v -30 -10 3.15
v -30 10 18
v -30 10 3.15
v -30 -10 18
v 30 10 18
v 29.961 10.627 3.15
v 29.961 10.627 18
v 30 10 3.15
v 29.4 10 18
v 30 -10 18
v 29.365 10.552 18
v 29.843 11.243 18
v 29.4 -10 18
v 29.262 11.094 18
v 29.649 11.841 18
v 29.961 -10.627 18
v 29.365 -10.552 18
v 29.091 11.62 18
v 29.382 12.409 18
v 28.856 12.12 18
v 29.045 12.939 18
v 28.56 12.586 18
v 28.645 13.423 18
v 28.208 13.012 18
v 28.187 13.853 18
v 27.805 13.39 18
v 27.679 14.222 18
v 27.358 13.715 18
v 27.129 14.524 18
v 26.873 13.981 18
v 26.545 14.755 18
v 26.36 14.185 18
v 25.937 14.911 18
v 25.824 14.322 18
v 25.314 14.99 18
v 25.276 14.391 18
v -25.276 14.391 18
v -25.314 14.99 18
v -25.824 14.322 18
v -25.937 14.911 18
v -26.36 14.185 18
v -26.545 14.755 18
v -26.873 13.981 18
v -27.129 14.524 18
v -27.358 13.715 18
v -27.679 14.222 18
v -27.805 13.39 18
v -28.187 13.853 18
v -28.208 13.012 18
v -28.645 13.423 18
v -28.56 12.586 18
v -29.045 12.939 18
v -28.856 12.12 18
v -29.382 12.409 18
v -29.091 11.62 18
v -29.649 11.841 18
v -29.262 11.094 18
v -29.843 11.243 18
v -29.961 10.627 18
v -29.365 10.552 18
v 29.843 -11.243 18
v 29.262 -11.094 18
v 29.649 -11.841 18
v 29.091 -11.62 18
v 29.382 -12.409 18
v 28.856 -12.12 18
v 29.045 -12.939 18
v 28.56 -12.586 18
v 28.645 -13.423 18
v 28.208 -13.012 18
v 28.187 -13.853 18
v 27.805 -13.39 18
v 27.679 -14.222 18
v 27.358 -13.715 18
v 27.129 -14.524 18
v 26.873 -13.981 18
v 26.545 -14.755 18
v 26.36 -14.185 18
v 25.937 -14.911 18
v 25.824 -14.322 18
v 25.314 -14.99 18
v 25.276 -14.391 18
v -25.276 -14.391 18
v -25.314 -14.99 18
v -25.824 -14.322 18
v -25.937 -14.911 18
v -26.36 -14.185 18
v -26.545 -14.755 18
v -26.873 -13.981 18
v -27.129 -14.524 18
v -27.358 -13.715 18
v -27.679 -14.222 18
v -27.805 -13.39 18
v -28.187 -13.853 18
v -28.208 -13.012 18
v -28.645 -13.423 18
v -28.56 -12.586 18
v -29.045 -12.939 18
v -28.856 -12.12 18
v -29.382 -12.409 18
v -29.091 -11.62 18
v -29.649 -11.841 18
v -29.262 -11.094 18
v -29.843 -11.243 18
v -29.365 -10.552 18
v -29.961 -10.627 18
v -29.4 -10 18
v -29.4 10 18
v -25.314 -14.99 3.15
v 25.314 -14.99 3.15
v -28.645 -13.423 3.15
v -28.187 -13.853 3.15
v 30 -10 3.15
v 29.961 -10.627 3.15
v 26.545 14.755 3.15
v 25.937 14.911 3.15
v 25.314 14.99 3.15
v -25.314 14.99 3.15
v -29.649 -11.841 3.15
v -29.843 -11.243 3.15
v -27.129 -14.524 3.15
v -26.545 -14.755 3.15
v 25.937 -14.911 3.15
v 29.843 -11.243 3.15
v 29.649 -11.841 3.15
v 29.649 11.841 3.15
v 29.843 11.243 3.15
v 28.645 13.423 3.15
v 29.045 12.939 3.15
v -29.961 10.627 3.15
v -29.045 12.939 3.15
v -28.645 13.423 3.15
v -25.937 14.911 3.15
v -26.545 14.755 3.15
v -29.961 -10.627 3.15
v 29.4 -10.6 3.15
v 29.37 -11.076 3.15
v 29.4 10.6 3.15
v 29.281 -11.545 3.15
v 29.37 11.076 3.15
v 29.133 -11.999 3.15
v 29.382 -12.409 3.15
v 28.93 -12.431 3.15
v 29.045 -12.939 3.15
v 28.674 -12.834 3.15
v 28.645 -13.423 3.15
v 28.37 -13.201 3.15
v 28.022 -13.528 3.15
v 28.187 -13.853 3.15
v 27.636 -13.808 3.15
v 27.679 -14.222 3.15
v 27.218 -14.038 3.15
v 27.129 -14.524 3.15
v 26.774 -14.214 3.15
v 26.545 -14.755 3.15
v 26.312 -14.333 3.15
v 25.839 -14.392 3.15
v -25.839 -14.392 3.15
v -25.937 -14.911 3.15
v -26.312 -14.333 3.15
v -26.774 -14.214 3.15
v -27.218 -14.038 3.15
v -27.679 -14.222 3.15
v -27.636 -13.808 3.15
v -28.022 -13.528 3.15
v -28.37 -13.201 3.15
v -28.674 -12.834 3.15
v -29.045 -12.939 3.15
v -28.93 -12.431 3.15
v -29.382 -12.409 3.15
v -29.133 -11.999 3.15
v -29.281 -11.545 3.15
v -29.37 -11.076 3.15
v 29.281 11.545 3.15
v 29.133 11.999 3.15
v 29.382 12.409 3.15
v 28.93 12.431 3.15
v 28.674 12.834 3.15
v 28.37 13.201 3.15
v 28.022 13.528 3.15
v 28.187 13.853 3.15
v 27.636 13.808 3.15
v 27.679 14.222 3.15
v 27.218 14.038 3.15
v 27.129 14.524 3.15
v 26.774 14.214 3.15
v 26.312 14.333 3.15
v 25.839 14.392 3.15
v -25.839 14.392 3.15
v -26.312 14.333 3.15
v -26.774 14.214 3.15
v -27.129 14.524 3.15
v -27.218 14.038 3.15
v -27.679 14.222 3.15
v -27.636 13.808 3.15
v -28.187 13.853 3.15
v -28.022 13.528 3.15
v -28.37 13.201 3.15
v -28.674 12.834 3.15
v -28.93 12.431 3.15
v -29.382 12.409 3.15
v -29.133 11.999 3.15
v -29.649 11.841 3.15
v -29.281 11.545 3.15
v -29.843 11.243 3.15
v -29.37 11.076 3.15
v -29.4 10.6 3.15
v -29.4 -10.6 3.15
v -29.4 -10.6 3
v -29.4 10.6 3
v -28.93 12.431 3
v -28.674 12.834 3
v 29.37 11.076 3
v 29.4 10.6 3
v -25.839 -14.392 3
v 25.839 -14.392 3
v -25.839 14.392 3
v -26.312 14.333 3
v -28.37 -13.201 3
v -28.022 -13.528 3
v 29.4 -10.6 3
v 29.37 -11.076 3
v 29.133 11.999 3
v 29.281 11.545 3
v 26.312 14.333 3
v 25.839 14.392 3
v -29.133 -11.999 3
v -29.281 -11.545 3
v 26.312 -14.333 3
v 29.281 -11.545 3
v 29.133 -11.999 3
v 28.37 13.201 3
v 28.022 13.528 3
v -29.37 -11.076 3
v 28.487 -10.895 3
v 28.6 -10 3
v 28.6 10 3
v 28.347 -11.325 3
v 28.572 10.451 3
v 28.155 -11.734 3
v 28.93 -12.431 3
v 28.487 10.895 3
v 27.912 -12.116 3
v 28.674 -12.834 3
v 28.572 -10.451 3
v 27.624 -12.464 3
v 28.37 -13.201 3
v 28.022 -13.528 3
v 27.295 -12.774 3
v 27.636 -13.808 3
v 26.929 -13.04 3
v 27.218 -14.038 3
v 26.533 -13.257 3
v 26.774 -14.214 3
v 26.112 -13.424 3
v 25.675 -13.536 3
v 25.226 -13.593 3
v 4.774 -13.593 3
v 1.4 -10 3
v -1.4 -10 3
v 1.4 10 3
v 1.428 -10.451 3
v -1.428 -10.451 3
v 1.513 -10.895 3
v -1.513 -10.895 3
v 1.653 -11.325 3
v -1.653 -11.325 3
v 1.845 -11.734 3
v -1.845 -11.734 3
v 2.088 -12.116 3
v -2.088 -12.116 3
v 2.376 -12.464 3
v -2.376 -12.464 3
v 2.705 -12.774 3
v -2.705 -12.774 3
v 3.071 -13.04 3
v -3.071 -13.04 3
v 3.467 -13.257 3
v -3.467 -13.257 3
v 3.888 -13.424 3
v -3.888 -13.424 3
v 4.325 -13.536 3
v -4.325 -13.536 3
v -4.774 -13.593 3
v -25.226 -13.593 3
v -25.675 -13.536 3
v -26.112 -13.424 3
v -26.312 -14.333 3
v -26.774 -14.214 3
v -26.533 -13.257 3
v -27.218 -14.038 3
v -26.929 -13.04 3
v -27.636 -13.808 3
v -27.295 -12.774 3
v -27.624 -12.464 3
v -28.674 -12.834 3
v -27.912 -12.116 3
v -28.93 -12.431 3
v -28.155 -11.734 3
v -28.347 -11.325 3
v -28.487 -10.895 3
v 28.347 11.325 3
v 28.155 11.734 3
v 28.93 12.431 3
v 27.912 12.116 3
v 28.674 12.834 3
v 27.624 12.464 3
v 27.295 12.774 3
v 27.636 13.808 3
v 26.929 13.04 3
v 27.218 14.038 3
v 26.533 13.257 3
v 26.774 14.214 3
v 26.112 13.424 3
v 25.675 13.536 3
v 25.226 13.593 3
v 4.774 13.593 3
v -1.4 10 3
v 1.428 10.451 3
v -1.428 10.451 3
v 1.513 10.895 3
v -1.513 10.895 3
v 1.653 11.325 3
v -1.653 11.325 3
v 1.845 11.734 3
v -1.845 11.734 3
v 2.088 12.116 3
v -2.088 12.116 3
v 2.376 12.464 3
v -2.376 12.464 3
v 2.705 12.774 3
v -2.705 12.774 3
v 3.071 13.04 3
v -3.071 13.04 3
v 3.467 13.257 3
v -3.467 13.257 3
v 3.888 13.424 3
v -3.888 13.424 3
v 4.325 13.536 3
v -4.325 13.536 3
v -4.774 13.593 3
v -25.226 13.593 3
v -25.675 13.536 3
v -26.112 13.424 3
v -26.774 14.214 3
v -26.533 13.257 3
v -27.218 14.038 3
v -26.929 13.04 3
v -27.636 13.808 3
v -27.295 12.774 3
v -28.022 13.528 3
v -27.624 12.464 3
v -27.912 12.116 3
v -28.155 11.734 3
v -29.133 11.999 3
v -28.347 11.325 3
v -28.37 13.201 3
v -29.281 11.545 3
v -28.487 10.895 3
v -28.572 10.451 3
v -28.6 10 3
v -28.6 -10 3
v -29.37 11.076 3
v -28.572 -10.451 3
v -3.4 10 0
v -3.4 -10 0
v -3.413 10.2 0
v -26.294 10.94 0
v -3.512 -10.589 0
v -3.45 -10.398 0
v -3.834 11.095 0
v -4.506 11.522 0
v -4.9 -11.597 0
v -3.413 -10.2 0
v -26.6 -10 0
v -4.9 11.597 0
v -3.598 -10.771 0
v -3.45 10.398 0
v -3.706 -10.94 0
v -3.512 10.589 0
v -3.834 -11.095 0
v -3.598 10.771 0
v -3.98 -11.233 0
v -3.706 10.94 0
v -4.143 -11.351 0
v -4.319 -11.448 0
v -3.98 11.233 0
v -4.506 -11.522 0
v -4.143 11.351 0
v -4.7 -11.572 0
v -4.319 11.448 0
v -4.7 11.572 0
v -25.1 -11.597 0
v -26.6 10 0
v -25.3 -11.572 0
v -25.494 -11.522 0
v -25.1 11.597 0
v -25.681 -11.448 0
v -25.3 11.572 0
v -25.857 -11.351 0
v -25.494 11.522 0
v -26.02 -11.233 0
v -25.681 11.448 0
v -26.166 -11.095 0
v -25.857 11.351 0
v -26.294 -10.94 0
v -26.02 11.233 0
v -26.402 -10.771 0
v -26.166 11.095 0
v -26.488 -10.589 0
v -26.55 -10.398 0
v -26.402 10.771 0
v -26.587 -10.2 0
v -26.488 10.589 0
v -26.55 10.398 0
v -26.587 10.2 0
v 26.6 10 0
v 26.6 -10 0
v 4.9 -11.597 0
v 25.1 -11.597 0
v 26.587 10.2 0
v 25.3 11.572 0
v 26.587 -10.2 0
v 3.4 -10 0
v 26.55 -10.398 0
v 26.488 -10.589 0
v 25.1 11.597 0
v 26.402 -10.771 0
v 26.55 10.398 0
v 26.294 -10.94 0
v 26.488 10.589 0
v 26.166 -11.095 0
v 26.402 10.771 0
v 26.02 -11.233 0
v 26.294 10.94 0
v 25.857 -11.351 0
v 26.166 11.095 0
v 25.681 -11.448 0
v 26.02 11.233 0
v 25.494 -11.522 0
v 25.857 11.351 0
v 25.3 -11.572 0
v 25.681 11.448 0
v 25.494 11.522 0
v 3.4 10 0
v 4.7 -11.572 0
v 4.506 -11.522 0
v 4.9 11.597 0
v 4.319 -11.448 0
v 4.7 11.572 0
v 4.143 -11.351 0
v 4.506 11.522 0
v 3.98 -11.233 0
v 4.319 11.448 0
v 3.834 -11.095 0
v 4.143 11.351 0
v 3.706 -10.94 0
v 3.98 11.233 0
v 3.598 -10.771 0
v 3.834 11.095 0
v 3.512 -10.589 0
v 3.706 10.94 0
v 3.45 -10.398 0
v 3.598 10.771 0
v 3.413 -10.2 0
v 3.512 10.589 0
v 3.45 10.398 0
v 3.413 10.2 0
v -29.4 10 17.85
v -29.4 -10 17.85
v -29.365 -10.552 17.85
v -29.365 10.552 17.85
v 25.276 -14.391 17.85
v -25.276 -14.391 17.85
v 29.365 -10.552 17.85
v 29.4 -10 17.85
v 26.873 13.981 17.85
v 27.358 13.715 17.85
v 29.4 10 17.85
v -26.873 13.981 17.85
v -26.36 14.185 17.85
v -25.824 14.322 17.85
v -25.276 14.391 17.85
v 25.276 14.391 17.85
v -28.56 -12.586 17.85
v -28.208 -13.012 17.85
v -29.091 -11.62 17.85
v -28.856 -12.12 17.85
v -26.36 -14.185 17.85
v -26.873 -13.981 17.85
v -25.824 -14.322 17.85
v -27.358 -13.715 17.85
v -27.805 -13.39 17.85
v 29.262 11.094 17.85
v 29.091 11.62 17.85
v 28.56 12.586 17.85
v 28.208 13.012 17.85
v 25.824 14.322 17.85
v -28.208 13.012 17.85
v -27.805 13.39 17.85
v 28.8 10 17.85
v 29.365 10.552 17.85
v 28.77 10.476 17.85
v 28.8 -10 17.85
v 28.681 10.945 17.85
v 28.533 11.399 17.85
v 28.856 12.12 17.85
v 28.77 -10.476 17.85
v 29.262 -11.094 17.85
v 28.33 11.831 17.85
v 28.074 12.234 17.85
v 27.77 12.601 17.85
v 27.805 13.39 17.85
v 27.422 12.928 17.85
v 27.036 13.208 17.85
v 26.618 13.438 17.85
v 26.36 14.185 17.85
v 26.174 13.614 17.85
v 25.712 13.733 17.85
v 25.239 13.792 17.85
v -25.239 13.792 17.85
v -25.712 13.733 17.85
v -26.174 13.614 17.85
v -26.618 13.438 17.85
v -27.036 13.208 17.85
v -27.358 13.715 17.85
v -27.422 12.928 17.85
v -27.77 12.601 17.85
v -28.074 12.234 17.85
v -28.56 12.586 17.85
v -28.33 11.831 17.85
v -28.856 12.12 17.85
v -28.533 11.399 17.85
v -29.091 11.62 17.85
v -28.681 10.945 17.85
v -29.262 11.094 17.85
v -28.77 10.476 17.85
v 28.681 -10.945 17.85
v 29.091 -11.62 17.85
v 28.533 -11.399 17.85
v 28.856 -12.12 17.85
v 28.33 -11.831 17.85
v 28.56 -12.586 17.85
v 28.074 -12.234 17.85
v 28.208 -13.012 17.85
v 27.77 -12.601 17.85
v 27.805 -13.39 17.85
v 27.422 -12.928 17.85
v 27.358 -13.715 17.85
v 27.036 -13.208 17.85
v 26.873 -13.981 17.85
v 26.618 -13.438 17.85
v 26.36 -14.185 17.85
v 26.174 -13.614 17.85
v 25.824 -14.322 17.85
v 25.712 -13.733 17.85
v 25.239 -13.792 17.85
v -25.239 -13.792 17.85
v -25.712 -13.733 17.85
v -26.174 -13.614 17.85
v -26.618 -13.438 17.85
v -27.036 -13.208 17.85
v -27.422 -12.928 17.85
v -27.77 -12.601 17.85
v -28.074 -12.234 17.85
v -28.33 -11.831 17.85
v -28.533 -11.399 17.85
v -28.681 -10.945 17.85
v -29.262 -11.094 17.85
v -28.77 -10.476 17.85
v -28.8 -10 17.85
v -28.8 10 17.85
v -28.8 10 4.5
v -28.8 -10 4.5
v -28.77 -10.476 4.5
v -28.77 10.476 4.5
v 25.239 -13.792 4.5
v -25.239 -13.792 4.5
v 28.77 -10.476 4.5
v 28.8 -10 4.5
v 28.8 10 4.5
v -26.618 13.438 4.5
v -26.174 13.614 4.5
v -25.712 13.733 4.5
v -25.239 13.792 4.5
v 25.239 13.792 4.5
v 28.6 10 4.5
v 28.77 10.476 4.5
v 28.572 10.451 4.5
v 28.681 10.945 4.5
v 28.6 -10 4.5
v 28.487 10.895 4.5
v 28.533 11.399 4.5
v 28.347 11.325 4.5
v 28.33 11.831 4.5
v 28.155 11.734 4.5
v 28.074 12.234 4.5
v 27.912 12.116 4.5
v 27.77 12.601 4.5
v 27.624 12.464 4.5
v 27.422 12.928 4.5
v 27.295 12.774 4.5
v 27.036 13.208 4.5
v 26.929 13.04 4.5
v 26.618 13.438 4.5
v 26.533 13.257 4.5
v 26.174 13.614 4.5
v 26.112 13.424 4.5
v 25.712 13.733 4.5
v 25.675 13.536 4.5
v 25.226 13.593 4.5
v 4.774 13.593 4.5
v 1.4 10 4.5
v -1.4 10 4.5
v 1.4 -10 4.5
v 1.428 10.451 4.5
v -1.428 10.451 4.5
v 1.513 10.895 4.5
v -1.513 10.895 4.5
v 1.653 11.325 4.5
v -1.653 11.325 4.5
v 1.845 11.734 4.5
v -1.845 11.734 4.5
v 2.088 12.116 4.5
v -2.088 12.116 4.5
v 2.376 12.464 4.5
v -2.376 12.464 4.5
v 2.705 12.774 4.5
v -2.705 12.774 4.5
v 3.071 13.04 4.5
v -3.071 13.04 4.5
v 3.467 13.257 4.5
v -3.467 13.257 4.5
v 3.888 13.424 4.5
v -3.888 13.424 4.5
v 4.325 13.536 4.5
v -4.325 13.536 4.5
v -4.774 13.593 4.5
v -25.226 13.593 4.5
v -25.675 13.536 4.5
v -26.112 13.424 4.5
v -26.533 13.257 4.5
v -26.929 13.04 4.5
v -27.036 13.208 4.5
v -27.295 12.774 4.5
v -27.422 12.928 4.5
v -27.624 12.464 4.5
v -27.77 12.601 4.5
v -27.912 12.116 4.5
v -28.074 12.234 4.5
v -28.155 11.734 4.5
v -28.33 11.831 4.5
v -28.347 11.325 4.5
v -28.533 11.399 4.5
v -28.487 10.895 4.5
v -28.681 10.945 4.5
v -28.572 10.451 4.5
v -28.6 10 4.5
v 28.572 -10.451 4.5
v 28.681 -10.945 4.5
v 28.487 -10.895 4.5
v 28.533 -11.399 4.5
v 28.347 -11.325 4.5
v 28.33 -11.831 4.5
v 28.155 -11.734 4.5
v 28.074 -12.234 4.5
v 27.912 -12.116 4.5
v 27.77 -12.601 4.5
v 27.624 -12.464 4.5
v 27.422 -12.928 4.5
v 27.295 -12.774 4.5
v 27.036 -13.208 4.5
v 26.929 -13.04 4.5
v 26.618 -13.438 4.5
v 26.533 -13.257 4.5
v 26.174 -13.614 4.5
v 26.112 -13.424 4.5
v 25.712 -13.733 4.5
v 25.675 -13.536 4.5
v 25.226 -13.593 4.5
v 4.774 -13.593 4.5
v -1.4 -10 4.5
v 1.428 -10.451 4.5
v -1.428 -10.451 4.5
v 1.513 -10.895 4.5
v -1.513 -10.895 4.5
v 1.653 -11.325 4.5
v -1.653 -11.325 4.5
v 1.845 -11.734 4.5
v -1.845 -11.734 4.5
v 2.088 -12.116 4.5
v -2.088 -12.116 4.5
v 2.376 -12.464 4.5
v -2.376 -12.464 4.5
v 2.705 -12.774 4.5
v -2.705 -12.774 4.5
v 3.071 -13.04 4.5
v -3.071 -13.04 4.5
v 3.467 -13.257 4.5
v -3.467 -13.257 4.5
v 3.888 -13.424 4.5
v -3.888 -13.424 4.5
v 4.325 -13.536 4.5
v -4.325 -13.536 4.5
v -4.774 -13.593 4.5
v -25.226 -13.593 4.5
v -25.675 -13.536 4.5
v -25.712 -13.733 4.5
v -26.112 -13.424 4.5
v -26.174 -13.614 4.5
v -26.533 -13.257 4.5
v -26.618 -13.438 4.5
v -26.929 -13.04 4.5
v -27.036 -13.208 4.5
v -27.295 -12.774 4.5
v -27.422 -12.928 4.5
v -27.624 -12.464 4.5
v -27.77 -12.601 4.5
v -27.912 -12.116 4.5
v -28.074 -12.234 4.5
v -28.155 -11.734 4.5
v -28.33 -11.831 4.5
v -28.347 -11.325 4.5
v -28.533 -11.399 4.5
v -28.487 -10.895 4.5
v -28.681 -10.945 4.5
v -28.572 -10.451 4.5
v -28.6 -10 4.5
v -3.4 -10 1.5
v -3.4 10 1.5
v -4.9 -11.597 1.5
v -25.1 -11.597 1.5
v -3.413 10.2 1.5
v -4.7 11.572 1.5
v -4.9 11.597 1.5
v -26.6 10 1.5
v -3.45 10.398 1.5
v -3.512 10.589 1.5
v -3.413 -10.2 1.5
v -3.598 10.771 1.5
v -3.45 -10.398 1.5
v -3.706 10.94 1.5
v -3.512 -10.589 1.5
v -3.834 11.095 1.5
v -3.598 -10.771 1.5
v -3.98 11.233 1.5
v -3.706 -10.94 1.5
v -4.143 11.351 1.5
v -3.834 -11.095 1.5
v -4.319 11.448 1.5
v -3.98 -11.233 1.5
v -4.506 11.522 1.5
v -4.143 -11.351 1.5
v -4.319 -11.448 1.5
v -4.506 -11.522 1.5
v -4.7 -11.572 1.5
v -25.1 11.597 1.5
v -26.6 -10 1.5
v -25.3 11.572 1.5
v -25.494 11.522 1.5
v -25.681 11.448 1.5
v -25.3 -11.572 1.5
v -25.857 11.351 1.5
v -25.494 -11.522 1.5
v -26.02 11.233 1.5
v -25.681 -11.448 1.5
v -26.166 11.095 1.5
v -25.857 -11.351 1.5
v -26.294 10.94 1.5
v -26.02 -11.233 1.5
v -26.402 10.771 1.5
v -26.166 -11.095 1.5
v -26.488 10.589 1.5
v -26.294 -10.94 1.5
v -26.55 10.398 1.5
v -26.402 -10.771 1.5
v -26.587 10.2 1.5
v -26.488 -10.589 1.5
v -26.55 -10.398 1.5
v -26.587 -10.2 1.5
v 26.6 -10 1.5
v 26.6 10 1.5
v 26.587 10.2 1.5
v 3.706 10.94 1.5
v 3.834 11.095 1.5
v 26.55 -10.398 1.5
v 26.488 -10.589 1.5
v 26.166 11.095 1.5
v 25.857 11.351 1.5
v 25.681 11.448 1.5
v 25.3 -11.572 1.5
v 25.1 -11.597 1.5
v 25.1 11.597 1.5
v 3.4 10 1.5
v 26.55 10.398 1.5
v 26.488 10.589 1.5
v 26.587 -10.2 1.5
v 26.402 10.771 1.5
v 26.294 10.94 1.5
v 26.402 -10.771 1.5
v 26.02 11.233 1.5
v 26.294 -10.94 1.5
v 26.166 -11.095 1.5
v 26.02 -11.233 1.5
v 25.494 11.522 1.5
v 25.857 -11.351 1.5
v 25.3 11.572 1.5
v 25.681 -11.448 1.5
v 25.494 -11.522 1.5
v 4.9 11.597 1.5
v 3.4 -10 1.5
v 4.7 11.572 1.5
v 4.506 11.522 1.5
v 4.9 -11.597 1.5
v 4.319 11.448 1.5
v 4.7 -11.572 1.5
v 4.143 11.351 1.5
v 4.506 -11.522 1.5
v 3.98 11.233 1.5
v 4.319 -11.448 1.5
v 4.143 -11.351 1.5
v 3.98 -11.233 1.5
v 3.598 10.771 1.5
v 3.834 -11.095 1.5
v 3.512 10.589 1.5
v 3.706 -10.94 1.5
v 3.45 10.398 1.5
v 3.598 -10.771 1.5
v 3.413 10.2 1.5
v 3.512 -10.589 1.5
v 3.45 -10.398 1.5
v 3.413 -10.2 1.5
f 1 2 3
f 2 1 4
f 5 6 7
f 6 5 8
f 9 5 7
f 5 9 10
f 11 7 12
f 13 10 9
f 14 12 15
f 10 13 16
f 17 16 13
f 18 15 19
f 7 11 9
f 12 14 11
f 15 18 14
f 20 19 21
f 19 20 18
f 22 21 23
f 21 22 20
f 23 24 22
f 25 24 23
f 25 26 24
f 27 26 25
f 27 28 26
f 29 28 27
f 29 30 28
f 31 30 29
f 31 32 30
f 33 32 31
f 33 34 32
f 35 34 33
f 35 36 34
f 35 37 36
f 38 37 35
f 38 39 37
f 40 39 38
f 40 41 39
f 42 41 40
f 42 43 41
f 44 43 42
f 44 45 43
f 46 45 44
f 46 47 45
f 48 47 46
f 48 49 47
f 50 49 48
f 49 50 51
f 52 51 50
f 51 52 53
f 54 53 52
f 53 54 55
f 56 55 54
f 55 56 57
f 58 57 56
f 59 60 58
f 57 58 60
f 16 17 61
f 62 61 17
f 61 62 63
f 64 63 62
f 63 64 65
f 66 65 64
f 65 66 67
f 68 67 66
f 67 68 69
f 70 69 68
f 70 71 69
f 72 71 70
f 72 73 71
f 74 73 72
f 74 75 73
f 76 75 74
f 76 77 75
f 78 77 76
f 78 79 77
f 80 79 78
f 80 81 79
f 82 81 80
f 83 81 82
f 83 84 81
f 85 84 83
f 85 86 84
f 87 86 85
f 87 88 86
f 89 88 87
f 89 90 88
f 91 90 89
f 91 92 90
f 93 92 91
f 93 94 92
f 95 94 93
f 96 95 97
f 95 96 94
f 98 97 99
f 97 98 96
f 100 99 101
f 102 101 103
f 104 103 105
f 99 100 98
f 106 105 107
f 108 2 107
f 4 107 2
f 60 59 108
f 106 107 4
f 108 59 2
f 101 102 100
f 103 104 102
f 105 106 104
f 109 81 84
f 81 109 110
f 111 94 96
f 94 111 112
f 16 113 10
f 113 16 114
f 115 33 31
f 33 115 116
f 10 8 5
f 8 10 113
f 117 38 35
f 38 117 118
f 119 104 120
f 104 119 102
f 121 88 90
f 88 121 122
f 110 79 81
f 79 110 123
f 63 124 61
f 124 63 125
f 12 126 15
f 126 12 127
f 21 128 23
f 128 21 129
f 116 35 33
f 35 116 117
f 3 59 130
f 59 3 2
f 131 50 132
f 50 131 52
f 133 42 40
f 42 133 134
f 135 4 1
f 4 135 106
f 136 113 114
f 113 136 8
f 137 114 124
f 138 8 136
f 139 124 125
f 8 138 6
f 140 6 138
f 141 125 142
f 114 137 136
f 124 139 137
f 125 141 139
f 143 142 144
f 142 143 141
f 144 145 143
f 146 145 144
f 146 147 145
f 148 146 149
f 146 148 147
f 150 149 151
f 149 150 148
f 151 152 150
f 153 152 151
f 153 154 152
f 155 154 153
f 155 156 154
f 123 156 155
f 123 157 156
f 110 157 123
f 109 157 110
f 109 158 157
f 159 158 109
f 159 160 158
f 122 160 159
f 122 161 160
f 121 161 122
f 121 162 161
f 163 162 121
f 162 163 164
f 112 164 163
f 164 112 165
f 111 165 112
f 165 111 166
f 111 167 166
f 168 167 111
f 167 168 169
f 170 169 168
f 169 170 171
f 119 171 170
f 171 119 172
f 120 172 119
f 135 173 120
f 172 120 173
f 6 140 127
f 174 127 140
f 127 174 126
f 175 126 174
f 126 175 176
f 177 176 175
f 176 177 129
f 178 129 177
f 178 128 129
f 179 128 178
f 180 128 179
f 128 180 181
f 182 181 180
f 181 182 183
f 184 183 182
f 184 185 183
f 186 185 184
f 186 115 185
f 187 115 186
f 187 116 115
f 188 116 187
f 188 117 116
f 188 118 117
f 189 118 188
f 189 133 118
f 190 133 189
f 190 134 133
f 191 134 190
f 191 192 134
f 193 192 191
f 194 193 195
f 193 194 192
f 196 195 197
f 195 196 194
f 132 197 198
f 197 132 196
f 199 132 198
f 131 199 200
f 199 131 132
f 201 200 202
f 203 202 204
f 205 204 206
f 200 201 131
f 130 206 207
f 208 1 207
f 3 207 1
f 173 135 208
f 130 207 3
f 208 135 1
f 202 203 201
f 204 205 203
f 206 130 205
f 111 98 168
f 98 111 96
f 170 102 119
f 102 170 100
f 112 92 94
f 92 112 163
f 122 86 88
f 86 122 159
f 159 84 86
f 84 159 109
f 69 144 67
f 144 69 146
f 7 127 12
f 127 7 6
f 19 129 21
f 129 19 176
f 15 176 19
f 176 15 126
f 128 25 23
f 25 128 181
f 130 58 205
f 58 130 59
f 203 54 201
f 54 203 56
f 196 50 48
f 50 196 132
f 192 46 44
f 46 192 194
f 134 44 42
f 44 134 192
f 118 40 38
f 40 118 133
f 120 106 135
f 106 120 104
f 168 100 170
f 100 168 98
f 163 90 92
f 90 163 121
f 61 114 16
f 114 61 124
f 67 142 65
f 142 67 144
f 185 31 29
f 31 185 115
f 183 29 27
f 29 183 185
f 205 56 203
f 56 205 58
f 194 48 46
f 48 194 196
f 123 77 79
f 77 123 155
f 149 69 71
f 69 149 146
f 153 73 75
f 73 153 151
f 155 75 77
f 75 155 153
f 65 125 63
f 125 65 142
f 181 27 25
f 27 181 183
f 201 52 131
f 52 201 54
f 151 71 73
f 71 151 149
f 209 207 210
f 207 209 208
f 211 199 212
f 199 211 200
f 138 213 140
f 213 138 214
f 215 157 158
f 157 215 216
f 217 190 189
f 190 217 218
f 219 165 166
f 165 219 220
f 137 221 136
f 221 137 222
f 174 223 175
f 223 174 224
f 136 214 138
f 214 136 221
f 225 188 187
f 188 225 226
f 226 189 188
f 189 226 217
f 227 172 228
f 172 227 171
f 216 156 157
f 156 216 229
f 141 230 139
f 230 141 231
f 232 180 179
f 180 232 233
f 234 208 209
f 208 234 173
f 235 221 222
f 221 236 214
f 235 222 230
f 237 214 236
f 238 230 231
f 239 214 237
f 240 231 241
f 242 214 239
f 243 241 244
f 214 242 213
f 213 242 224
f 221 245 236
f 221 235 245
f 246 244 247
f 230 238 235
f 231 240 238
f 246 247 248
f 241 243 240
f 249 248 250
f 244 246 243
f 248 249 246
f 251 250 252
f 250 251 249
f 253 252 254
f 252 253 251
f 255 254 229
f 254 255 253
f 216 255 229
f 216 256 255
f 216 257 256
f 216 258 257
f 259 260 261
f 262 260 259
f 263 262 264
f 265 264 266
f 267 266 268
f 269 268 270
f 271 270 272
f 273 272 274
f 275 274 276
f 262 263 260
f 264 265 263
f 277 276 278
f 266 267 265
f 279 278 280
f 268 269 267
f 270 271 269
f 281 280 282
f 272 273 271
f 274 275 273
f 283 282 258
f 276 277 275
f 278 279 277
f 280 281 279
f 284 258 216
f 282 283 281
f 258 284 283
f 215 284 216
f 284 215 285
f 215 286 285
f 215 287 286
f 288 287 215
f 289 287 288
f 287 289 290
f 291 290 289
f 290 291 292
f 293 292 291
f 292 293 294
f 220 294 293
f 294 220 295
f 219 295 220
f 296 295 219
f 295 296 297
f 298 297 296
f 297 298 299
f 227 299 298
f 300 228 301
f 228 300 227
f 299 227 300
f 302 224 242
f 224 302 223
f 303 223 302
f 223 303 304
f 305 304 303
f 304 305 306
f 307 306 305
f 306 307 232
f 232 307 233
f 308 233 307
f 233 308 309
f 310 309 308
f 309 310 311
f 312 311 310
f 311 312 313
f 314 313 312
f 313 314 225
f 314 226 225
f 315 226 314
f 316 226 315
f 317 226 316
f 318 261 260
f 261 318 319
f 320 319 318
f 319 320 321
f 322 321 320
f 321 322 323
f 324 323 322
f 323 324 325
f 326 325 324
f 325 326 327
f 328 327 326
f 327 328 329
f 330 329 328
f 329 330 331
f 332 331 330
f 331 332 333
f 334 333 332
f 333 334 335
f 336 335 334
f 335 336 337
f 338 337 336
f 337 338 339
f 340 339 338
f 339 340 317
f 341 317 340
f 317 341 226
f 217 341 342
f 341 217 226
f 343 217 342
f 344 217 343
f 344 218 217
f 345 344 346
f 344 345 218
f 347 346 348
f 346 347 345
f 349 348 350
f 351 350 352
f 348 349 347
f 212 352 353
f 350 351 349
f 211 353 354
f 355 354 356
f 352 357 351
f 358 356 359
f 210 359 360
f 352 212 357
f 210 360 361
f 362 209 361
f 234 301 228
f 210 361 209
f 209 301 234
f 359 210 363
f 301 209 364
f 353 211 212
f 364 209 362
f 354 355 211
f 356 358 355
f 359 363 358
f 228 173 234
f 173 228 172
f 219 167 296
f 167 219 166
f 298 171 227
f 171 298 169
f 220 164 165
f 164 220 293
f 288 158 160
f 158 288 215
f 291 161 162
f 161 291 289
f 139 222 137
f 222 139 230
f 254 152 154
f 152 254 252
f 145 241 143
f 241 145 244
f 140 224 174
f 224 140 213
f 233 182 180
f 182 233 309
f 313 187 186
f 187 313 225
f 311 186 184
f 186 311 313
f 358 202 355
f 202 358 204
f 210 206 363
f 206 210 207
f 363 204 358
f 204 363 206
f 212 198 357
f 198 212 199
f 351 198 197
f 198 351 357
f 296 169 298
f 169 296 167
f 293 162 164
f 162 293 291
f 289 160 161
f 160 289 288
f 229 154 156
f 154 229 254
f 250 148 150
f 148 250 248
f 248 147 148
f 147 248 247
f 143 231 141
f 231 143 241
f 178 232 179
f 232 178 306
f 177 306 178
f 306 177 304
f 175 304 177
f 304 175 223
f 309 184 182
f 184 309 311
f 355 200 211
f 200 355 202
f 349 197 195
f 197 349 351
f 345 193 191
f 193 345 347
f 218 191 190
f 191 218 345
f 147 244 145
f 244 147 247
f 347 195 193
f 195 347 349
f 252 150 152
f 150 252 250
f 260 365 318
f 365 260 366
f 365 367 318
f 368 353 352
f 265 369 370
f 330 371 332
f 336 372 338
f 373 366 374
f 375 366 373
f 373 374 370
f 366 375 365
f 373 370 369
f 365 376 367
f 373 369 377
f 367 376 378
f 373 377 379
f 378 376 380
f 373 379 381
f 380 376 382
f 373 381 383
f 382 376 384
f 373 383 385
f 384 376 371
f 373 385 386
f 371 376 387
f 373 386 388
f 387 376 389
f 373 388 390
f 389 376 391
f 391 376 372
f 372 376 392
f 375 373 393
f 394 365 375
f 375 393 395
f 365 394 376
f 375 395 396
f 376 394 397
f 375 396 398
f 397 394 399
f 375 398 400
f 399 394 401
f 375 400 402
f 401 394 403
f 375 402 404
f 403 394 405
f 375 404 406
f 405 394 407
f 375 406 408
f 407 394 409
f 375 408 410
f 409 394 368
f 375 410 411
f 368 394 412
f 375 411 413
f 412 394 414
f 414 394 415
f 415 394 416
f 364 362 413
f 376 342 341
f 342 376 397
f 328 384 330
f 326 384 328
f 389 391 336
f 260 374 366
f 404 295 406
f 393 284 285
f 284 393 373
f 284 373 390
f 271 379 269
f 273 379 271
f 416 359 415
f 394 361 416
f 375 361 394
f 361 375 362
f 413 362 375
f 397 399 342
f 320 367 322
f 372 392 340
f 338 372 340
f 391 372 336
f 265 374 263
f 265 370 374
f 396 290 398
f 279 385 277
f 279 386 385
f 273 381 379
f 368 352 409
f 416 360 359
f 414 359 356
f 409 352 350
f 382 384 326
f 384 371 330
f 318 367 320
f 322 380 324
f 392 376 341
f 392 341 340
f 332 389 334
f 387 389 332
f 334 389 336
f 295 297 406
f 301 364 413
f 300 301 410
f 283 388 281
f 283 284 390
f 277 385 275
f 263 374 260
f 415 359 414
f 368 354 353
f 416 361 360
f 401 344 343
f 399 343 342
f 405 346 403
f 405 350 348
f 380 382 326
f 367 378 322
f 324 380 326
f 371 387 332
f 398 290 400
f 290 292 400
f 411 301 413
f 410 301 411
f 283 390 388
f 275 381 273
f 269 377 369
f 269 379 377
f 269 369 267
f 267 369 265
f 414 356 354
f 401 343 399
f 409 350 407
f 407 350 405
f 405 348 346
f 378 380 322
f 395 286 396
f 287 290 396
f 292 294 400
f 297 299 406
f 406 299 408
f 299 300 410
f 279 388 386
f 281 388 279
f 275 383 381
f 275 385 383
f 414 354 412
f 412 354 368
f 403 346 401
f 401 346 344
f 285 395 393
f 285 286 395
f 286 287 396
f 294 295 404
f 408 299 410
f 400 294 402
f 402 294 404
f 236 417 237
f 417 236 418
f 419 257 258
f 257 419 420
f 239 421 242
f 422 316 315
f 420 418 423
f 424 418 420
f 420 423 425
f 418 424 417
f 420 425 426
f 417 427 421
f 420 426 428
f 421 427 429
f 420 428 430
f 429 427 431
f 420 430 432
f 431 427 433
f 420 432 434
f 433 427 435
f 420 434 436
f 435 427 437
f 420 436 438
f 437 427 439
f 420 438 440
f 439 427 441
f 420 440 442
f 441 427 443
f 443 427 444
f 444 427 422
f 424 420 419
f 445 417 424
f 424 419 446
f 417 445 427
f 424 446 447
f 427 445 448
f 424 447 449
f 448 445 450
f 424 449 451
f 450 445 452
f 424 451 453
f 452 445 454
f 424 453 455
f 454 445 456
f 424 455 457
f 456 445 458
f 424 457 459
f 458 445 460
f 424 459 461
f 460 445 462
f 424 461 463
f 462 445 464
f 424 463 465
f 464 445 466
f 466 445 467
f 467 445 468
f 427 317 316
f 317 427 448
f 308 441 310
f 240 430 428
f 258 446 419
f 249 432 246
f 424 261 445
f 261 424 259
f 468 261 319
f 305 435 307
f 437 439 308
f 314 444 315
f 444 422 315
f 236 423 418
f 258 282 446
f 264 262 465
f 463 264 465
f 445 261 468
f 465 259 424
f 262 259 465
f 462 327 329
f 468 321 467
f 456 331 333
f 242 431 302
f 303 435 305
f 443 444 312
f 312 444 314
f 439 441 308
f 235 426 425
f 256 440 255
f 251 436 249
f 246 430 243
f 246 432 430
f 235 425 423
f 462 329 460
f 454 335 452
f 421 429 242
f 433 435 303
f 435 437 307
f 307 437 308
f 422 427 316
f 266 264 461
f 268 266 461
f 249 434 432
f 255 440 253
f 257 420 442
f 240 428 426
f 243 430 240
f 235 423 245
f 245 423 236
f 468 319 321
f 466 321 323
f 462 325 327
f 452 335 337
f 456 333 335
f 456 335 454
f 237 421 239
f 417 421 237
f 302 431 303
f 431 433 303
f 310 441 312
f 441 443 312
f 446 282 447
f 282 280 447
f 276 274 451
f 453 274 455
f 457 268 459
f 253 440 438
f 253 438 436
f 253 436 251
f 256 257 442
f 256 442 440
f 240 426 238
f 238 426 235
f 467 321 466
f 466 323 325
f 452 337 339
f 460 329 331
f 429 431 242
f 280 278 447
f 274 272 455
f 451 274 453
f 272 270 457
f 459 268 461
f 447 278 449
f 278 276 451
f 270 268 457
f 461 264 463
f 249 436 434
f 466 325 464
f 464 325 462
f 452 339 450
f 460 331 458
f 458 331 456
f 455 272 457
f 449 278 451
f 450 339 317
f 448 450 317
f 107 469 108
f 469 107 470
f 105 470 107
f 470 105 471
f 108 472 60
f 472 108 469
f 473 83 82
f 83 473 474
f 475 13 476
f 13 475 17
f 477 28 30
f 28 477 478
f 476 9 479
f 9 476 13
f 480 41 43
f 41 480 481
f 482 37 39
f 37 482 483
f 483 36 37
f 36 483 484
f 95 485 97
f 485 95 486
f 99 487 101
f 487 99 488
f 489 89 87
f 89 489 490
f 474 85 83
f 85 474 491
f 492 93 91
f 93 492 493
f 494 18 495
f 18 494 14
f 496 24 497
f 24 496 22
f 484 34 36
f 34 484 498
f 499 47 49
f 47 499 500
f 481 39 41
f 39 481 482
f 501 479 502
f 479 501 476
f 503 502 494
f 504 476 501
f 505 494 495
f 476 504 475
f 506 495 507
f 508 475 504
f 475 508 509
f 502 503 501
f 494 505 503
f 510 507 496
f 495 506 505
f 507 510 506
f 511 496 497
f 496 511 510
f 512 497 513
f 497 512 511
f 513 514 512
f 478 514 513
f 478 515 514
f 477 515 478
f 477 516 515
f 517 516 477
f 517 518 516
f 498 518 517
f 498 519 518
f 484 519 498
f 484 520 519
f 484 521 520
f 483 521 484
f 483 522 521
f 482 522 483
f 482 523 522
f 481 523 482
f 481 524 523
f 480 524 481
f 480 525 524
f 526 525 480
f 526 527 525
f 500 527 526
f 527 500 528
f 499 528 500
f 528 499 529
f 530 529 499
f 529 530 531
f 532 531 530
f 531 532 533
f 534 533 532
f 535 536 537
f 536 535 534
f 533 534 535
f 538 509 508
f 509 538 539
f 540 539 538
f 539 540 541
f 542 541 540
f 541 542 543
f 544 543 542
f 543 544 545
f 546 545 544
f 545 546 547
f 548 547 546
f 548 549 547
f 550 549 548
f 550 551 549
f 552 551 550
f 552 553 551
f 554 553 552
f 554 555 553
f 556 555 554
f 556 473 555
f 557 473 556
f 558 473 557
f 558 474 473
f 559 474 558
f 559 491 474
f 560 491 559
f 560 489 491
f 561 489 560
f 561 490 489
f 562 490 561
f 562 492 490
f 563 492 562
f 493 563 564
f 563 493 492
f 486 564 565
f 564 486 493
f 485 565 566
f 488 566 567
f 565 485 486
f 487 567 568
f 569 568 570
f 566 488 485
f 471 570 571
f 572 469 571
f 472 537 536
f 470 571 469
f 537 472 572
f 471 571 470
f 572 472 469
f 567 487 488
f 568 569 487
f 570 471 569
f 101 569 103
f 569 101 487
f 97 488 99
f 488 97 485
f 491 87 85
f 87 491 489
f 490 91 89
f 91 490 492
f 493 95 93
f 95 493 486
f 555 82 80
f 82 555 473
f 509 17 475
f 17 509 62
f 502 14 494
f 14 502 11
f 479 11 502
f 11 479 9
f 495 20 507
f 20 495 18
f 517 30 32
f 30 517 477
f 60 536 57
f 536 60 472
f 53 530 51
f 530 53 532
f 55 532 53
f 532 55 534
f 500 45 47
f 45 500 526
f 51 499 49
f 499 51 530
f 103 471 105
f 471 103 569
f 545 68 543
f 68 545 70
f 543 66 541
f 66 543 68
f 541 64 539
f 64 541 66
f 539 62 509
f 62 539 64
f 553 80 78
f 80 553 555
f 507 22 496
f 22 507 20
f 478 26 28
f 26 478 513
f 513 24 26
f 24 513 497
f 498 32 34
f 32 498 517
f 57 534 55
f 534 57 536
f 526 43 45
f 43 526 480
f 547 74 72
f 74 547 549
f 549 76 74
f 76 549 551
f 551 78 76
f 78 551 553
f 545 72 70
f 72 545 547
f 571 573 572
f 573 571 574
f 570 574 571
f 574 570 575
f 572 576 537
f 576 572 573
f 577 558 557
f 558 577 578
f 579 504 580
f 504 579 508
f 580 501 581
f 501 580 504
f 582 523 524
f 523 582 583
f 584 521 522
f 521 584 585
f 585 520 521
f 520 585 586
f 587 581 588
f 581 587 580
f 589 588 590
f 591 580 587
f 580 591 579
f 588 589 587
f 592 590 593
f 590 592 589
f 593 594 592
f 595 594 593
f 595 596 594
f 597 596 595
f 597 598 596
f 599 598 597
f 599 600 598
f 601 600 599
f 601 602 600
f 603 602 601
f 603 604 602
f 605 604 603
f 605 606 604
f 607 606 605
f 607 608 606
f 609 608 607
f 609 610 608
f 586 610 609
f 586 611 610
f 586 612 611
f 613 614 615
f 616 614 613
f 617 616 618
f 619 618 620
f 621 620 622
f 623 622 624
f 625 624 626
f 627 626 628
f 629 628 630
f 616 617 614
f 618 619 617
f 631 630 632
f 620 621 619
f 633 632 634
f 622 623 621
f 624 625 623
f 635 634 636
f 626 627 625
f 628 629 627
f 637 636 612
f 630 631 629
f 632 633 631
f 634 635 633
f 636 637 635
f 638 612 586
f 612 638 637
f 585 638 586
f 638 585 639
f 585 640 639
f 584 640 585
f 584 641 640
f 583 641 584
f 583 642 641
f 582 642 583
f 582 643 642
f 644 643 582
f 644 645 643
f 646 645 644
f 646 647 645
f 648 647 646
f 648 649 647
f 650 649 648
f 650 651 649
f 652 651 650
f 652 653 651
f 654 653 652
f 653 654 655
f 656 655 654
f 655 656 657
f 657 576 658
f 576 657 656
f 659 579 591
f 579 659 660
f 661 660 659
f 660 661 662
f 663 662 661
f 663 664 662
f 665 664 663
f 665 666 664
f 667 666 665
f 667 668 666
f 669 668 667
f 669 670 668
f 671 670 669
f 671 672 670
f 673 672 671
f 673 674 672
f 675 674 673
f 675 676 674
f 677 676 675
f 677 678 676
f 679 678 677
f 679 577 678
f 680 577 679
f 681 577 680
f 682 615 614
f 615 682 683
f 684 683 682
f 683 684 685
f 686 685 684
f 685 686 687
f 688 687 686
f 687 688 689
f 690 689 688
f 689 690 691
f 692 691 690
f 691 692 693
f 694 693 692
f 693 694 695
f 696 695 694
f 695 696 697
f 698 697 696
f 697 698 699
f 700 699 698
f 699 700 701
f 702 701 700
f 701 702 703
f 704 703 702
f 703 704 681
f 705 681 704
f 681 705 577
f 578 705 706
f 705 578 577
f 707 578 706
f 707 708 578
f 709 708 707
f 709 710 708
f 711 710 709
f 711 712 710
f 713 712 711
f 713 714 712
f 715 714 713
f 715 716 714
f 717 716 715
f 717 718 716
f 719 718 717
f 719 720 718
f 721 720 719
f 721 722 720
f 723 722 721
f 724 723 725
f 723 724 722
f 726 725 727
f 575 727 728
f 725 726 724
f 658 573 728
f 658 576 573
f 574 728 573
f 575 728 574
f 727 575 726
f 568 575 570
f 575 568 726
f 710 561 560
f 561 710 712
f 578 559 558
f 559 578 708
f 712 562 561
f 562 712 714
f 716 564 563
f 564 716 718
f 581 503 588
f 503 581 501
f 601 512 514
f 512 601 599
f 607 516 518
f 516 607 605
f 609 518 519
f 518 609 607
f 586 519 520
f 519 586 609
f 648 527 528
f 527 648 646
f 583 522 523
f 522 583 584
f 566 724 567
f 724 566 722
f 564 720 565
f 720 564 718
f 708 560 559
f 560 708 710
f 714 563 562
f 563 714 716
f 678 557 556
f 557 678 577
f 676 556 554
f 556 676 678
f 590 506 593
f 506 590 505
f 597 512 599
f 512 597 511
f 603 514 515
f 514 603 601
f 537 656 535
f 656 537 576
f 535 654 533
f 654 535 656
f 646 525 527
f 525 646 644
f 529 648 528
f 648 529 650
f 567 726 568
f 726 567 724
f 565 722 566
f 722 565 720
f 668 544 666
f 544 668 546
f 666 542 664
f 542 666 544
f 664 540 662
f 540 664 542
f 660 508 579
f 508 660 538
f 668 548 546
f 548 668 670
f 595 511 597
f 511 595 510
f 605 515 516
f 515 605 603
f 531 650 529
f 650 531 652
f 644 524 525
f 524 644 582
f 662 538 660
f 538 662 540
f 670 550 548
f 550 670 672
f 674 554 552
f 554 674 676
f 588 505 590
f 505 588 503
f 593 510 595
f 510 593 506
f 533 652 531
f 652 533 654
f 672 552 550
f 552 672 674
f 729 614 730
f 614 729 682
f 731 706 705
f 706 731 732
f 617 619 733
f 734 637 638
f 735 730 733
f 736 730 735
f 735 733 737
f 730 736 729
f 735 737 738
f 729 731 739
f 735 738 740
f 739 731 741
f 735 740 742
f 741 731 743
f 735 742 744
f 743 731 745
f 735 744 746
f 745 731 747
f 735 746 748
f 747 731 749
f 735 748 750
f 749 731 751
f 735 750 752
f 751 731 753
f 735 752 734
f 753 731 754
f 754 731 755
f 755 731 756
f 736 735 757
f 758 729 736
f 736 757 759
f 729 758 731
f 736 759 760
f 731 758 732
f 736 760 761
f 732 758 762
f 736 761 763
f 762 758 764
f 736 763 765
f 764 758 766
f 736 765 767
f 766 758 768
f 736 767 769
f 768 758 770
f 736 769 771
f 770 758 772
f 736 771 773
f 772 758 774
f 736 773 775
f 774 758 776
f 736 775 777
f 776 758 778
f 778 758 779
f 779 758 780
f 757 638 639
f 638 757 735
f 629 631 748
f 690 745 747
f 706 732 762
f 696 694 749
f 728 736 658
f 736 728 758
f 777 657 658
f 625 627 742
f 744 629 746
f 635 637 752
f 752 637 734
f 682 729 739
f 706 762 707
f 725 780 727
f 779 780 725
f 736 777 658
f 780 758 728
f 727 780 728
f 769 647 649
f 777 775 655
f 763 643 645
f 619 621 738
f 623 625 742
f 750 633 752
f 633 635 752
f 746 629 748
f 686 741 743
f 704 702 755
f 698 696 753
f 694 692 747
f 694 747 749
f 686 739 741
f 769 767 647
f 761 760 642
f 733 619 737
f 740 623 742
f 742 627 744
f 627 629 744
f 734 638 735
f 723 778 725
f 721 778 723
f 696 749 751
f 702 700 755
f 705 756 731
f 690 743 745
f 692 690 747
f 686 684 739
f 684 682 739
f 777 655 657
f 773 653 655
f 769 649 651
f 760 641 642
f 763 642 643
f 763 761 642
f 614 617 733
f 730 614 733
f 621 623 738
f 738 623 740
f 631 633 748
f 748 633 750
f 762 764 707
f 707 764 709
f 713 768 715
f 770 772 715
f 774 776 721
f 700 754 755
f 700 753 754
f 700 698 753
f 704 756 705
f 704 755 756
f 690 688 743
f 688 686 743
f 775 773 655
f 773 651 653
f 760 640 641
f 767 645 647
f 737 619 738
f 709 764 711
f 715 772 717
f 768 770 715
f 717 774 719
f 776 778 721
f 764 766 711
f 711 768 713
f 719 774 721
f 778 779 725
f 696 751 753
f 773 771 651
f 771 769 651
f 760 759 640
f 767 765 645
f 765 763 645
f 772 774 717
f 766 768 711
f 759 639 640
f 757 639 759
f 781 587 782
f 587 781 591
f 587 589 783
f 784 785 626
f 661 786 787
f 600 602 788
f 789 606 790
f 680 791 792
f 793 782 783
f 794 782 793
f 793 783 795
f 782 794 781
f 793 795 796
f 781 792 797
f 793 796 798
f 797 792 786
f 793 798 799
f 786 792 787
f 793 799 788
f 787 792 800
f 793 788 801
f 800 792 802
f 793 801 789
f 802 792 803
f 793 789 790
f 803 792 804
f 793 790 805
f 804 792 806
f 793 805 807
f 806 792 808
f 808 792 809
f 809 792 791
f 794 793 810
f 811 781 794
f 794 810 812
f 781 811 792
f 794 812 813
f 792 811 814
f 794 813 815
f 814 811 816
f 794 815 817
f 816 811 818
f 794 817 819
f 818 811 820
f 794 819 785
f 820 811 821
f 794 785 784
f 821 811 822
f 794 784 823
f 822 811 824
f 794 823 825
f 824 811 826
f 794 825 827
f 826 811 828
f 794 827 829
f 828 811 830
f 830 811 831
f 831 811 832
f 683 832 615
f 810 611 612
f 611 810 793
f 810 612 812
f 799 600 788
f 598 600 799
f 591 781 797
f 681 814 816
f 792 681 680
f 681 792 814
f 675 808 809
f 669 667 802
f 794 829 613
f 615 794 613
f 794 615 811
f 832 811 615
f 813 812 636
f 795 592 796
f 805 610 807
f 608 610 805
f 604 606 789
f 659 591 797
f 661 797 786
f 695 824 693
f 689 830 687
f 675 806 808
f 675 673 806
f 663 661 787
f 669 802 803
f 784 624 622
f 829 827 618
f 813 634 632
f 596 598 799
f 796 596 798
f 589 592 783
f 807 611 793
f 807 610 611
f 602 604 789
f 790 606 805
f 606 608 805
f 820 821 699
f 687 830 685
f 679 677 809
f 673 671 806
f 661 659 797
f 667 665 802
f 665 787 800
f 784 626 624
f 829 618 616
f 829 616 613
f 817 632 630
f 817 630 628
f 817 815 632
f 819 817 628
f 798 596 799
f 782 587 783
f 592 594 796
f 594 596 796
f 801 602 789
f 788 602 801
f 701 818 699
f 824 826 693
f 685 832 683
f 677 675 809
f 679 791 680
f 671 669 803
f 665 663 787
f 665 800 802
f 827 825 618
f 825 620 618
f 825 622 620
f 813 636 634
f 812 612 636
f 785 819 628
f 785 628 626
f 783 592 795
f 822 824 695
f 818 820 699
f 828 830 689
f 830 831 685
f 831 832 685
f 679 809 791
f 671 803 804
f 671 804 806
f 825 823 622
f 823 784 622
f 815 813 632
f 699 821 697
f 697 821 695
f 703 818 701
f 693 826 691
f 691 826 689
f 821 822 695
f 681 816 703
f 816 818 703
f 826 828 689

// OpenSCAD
$fn = 50;


difference() {
	union() {
		translate(v = [0, 0, 3.1500000000]) {
			hull() {
				translate(v = [-25.0000000000, 10.0000000000, 0]) {
					cylinder(h = 14.8500000000, r = 5);
				}
				translate(v = [25.0000000000, 10.0000000000, 0]) {
					cylinder(h = 14.8500000000, r = 5);
				}
				translate(v = [-25.0000000000, -10.0000000000, 0]) {
					cylinder(h = 14.8500000000, r = 5);
				}
				translate(v = [25.0000000000, -10.0000000000, 0]) {
					cylinder(h = 14.8500000000, r = 5);
				}
			}
		}
		translate(v = [0, 0, 3]) {
			hull() {
				translate(v = [-25.6000000000, 10.6000000000, 0]) {
					cylinder(h = 0.1500000000, r = 3.8000000000);
				}
				translate(v = [25.6000000000, 10.6000000000, 0]) {
					cylinder(h = 0.1500000000, r = 3.8000000000);
				}
				translate(v = [-25.6000000000, -10.6000000000, 0]) {
					cylinder(h = 0.1500000000, r = 3.8000000000);
				}
				translate(v = [25.6000000000, -10.6000000000, 0]) {
					cylinder(h = 0.1500000000, r = 3.8000000000);
				}
			}
		}
		translate(v = [-15.0000000000, 0.0000000000, 3]) {
			rotate(a = [0, 180, 0]) {
				hull() {
					translate(v = [-10.0000000000, 10.0000000000, 0]) {
						cylinder(h = 3, r1 = 3.6000000000, r2 = 1.6000000000);
					}
					translate(v = [10.0000000000, 10.0000000000, 0]) {
						cylinder(h = 3, r1 = 3.6000000000, r2 = 1.6000000000);
					}
					translate(v = [-10.0000000000, -10.0000000000, 0]) {
						cylinder(h = 3, r1 = 3.6000000000, r2 = 1.6000000000);
					}
					translate(v = [10.0000000000, -10.0000000000, 0]) {
						cylinder(h = 3, r1 = 3.6000000000, r2 = 1.6000000000);
					}
				}
			}
		}
		translate(v = [15.0000000000, 0.0000000000, 3]) {
			rotate(a = [0, 180, 0]) {
				hull() {
					translate(v = [-10.0000000000, 10.0000000000, 0]) {
						cylinder(h = 3, r1 = 3.6000000000, r2 = 1.6000000000);
					}
					translate(v = [10.0000000000, 10.0000000000, 0]) {
						cylinder(h = 3, r1 = 3.6000000000, r2 = 1.6000000000);
					}
					translate(v = [-10.0000000000, -10.0000000000, 0]) {
						cylinder(h = 3, r1 = 3.6000000000, r2 = 1.6000000000);
					}
					translate(v = [10.0000000000, -10.0000000000, 0]) {
						cylinder(h = 3, r1 = 3.6000000000, r2 = 1.6000000000);
					}
				}
			}
		}
	}
	union() {
		translate(v = [0, 0, 17.8500000000]) {
			hull() {
				translate(v = [-25.0000000000, 10.0000000000, 0]) {
					cylinder(h = 0.1500000000, r = 4.4000000000);
				}
				translate(v = [25.0000000000, 10.0000000000, 0]) {
					cylinder(h = 0.1500000000, r = 4.4000000000);
				}
				translate(v = [-25.0000000000, -10.0000000000, 0]) {
					cylinder(h = 0.1500000000, r = 4.4000000000);
				}
				translate(v = [25.0000000000, -10.0000000000, 0]) {
					cylinder(h = 0.1500000000, r = 4.4000000000);
				}
			}
		}
		translate(v = [0, 0, 4.5000000000]) {
			hull() {
				translate(v = [-25.0000000000, 10.0000000000, 0]) {
					cylinder(h = 13.5000000000, r = 3.8000000000);
				}
				translate(v = [25.0000000000, 10.0000000000, 0]) {
					cylinder(h = 13.5000000000, r = 3.8000000000);
				}
				translate(v = [-25.0000000000, -10.0000000000, 0]) {
					cylinder(h = 13.5000000000, r = 3.8000000000);
				}
				translate(v = [25.0000000000, -10.0000000000, 0]) {
					cylinder(h = 13.5000000000, r = 3.8000000000);
				}
			}
		}
		translate(v = [-15.0000000000, 0.0000000000, 4.5000000000]) {
			rotate(a = [0, 180, 0]) {
				#hull() {
					translate(v = [-10.0000000000, 10.0000000000, 0]) {
						cylinder(h = 3, r1 = 3.6000000000, r2 = 1.6000000000);
					}
					translate(v = [10.0000000000, 10.0000000000, 0]) {
						cylinder(h = 3, r1 = 3.6000000000, r2 = 1.6000000000);
					}
					translate(v = [-10.0000000000, -10.0000000000, 0]) {
						cylinder(h = 3, r1 = 3.6000000000, r2 = 1.6000000000);
					}
					translate(v = [10.0000000000, -10.0000000000, 0]) {
						cylinder(h = 3, r1 = 3.6000000000, r2 = 1.6000000000);
					}
				}
			}
		}
		translate(v = [15.0000000000, 0.0000000000, 4.5000000000]) {
			rotate(a = [0, 180, 0]) {
				#hull() {
					translate(v = [-10.0000000000, 10.0000000000, 0]) {
						cylinder(h = 3, r1 = 3.6000000000, r2 = 1.6000000000);
					}
					translate(v = [10.0000000000, 10.0000000000, 0]) {
						cylinder(h = 3, r1 = 3.6000000000, r2 = 1.6000000000);
					}
					translate(v = [-10.0000000000, -10.0000000000, 0]) {
						cylinder(h = 3, r1 = 3.6000000000, r2 = 1.6000000000);
					}
					translate(v = [10.0000000000, -10.0000000000, 0]) {
						cylinder(h = 3, r1 = 3.6000000000, r2 = 1.6000000000);
					}
				}
			}
		}
	}
}
